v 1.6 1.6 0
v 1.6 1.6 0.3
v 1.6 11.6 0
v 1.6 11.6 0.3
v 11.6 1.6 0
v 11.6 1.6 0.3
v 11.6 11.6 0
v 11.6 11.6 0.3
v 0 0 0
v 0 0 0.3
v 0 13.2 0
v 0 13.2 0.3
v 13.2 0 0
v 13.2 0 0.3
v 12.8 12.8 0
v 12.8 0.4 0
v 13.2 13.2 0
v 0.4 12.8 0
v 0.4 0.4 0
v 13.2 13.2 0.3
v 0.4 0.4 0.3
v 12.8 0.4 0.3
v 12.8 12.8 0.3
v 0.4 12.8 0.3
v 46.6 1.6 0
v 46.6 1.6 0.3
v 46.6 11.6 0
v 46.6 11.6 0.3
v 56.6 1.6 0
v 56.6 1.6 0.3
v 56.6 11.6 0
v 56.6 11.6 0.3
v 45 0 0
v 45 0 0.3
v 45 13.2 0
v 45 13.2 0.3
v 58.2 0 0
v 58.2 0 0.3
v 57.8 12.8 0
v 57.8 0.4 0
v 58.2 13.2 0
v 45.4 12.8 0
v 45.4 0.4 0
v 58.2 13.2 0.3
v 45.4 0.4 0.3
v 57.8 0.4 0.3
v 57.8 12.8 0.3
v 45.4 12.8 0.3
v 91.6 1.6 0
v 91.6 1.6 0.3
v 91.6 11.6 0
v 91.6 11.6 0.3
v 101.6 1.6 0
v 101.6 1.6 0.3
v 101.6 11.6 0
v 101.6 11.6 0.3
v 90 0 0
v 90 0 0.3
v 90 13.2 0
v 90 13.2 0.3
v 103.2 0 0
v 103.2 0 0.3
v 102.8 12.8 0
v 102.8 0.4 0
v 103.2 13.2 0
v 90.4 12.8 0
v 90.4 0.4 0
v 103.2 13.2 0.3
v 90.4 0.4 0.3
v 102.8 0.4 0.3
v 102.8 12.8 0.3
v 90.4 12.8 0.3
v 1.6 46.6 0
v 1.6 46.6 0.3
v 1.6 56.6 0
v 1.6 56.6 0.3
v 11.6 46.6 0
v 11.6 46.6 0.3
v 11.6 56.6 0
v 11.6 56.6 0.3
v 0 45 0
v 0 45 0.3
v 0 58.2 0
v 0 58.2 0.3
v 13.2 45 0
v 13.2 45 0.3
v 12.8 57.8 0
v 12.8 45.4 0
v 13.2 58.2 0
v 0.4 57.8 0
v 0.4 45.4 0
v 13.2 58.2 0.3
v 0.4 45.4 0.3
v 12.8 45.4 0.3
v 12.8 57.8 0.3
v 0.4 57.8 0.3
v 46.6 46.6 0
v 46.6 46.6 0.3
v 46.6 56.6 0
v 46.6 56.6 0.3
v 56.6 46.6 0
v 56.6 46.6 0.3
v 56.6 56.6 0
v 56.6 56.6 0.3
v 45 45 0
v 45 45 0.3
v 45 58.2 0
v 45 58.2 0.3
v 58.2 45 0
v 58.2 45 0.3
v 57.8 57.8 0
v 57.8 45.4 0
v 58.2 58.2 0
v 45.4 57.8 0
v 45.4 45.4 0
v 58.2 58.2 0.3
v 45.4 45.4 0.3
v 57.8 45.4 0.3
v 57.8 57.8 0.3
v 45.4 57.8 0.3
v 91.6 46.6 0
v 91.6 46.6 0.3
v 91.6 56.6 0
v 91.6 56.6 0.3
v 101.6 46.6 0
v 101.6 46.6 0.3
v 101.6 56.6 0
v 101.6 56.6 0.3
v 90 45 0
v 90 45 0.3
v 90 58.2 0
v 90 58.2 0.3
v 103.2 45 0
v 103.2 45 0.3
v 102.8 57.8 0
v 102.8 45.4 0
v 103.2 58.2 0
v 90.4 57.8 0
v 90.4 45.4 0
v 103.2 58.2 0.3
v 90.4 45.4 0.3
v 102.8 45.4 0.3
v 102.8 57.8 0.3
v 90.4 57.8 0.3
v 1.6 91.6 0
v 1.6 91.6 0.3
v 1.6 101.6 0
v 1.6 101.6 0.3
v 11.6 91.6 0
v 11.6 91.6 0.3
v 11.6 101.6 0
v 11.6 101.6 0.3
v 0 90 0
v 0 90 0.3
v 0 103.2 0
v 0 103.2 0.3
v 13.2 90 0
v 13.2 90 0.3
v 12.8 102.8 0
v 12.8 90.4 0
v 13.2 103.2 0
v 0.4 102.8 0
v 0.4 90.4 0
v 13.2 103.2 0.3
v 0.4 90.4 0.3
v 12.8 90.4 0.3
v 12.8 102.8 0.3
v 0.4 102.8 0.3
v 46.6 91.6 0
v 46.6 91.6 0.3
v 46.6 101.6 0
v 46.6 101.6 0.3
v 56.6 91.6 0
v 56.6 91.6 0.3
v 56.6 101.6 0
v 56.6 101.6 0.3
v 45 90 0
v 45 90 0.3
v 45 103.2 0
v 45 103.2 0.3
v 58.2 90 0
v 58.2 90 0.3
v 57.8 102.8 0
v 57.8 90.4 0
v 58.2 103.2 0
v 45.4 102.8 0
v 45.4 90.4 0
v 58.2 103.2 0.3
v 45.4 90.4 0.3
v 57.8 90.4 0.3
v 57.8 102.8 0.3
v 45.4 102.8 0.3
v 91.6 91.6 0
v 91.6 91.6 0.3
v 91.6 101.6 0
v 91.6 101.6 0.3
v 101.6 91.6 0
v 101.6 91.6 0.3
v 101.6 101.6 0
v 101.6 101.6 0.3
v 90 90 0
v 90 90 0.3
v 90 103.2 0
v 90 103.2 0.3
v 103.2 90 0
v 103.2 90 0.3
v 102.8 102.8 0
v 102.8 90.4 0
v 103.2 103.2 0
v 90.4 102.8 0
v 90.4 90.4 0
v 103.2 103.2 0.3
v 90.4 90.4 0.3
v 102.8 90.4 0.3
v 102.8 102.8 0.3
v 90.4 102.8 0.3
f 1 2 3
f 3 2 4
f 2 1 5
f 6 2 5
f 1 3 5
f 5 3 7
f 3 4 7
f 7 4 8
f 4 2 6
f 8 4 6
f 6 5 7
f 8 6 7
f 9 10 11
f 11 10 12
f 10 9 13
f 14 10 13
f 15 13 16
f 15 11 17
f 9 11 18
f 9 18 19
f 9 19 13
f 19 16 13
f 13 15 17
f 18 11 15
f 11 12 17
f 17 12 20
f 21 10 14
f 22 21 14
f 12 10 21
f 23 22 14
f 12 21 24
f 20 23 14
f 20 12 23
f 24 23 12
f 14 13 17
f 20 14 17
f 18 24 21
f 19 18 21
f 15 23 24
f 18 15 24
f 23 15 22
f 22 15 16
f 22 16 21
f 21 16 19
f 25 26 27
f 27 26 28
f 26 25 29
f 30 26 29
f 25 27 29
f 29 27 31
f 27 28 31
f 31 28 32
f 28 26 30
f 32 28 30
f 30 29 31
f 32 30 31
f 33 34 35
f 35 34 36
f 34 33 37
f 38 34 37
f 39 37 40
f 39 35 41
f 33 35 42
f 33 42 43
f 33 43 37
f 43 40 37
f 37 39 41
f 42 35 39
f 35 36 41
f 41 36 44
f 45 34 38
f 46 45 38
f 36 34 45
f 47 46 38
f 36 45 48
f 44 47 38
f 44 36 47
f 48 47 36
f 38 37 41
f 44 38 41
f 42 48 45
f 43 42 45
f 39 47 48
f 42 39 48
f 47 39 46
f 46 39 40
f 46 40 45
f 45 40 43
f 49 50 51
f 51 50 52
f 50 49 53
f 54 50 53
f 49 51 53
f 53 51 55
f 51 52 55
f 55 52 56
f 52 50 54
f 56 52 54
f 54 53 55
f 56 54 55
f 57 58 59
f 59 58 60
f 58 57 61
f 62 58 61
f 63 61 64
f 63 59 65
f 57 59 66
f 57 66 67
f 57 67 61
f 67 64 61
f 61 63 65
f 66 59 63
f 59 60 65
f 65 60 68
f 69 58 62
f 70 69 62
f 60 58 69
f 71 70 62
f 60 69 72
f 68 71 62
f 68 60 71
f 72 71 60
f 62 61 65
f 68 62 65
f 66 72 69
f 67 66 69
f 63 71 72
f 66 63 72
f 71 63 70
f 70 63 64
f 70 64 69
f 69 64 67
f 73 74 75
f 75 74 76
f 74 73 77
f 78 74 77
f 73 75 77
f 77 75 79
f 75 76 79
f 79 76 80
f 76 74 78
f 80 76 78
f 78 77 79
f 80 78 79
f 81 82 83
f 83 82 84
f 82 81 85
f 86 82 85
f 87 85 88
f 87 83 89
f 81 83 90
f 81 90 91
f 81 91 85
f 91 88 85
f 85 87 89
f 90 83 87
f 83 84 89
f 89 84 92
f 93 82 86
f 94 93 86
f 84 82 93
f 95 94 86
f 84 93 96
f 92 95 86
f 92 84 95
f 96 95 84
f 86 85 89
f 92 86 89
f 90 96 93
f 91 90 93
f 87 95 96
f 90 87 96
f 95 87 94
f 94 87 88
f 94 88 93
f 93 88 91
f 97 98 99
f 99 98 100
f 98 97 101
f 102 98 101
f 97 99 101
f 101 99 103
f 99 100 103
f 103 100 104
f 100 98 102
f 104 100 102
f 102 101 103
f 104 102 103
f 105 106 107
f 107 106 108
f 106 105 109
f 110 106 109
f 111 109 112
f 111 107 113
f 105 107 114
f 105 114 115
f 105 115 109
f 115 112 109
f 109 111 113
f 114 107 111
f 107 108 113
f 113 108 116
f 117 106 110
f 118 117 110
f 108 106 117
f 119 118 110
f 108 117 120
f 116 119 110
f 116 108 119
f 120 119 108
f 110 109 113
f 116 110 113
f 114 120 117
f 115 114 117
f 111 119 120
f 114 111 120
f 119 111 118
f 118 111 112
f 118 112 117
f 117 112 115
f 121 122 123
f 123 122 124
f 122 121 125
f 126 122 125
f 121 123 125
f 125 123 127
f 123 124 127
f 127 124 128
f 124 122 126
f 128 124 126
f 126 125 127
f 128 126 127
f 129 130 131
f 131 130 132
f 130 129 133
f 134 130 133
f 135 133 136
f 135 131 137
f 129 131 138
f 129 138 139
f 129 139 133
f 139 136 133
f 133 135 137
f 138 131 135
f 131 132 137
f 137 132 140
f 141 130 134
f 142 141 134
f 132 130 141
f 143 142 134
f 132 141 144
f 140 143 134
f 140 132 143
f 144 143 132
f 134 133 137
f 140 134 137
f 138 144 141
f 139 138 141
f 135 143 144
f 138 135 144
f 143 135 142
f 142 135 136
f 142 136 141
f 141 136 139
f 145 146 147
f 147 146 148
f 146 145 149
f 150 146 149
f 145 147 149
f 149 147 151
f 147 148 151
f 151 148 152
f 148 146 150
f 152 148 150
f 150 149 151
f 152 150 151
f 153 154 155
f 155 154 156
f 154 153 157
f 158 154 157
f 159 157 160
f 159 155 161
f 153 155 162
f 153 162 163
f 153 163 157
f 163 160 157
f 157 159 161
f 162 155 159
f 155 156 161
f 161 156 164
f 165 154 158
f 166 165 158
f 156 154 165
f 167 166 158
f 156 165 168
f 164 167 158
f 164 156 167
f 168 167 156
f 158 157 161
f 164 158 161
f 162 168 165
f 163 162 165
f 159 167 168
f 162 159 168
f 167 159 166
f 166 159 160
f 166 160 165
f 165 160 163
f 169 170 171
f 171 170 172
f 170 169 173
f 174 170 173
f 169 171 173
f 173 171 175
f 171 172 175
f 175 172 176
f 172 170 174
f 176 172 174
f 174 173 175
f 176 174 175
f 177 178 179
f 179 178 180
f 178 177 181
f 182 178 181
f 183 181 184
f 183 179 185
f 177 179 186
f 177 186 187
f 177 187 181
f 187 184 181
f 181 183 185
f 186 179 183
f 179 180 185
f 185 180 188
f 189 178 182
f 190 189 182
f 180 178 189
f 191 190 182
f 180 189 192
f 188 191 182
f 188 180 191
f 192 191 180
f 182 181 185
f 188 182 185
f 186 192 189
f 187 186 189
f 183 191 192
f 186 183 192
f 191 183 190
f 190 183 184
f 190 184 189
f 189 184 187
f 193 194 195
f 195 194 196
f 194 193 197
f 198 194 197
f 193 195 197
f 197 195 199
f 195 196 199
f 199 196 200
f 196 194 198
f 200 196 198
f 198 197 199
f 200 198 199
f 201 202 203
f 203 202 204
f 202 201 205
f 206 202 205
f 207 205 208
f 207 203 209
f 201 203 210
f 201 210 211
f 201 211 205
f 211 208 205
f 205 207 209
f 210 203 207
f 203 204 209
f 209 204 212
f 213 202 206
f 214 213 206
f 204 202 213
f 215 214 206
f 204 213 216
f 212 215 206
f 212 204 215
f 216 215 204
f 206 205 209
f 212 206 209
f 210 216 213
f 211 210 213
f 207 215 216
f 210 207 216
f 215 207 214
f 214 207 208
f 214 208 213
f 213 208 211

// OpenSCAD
/**
 * Print designed to check that you bed is level
 *
 * print four small squares in each corner to ensure even print quality and good adhesion.
 */

// Define your printers printable area
// If you are using Sprinter firmware then these come directly from configuration.h
$fn=100;
X_MAX_LENGTH = 100;
Y_MAX_LENGTH = 100;

THICKNESS = 0.3; //Square / outline thickness
SIZE = 10; //Square width / height
GAP = 1.2; //Width of border between square and perimeter
OUTLINE_WIDTH = 0.4; //Width of perimeter around square
OFFSET = 0; //Offset from limits in each axis

translate([OFFSET, OFFSET, 0]) square(); //Top Left
translate([(X_MAX_LENGTH / 2) - (SIZE / 2), OFFSET, 0]) square(); //Top Middle
translate([X_MAX_LENGTH - OFFSET - SIZE, OFFSET, 0]) square(); //Top Right

translate([OFFSET, (Y_MAX_LENGTH / 2) - (SIZE / 2), 0]) square(); //Middle Left
translate([(X_MAX_LENGTH / 2) - (SIZE / 2), (Y_MAX_LENGTH / 2) - (SIZE / 2), 0]) square(); //Middle Middle
translate([X_MAX_LENGTH - OFFSET - SIZE, (Y_MAX_LENGTH / 2) - (SIZE / 2), 0]) square(); //Middle Right

translate([OFFSET, Y_MAX_LENGTH - OFFSET - SIZE, 0]) square(); //Bottom Left
translate([(X_MAX_LENGTH / 2) - (SIZE / 2), Y_MAX_LENGTH - OFFSET - SIZE, 0]) square(); //Bottom Middle
translate([X_MAX_LENGTH - OFFSET - SIZE, Y_MAX_LENGTH - OFFSET - SIZE, 0]) square(); //Bottom Right

module square() {
	//Center square
	translate([
				OUTLINE_WIDTH + GAP,
				OUTLINE_WIDTH + GAP,
				0
			])
		cube([SIZE, SIZE, THICKNESS]);

	//Perimeter
	difference() {
		//Outer square
		cube([
				SIZE + (2 * (GAP + OUTLINE_WIDTH)),
				SIZE + (2 * (GAP + OUTLINE_WIDTH)),
				THICKNESS
			]);

		//Inner square
		translate([OUTLINE_WIDTH, OUTLINE_WIDTH, -50])
			cube([SIZE + (2 * GAP), SIZE + (2 * GAP), 100]);
	}
}
